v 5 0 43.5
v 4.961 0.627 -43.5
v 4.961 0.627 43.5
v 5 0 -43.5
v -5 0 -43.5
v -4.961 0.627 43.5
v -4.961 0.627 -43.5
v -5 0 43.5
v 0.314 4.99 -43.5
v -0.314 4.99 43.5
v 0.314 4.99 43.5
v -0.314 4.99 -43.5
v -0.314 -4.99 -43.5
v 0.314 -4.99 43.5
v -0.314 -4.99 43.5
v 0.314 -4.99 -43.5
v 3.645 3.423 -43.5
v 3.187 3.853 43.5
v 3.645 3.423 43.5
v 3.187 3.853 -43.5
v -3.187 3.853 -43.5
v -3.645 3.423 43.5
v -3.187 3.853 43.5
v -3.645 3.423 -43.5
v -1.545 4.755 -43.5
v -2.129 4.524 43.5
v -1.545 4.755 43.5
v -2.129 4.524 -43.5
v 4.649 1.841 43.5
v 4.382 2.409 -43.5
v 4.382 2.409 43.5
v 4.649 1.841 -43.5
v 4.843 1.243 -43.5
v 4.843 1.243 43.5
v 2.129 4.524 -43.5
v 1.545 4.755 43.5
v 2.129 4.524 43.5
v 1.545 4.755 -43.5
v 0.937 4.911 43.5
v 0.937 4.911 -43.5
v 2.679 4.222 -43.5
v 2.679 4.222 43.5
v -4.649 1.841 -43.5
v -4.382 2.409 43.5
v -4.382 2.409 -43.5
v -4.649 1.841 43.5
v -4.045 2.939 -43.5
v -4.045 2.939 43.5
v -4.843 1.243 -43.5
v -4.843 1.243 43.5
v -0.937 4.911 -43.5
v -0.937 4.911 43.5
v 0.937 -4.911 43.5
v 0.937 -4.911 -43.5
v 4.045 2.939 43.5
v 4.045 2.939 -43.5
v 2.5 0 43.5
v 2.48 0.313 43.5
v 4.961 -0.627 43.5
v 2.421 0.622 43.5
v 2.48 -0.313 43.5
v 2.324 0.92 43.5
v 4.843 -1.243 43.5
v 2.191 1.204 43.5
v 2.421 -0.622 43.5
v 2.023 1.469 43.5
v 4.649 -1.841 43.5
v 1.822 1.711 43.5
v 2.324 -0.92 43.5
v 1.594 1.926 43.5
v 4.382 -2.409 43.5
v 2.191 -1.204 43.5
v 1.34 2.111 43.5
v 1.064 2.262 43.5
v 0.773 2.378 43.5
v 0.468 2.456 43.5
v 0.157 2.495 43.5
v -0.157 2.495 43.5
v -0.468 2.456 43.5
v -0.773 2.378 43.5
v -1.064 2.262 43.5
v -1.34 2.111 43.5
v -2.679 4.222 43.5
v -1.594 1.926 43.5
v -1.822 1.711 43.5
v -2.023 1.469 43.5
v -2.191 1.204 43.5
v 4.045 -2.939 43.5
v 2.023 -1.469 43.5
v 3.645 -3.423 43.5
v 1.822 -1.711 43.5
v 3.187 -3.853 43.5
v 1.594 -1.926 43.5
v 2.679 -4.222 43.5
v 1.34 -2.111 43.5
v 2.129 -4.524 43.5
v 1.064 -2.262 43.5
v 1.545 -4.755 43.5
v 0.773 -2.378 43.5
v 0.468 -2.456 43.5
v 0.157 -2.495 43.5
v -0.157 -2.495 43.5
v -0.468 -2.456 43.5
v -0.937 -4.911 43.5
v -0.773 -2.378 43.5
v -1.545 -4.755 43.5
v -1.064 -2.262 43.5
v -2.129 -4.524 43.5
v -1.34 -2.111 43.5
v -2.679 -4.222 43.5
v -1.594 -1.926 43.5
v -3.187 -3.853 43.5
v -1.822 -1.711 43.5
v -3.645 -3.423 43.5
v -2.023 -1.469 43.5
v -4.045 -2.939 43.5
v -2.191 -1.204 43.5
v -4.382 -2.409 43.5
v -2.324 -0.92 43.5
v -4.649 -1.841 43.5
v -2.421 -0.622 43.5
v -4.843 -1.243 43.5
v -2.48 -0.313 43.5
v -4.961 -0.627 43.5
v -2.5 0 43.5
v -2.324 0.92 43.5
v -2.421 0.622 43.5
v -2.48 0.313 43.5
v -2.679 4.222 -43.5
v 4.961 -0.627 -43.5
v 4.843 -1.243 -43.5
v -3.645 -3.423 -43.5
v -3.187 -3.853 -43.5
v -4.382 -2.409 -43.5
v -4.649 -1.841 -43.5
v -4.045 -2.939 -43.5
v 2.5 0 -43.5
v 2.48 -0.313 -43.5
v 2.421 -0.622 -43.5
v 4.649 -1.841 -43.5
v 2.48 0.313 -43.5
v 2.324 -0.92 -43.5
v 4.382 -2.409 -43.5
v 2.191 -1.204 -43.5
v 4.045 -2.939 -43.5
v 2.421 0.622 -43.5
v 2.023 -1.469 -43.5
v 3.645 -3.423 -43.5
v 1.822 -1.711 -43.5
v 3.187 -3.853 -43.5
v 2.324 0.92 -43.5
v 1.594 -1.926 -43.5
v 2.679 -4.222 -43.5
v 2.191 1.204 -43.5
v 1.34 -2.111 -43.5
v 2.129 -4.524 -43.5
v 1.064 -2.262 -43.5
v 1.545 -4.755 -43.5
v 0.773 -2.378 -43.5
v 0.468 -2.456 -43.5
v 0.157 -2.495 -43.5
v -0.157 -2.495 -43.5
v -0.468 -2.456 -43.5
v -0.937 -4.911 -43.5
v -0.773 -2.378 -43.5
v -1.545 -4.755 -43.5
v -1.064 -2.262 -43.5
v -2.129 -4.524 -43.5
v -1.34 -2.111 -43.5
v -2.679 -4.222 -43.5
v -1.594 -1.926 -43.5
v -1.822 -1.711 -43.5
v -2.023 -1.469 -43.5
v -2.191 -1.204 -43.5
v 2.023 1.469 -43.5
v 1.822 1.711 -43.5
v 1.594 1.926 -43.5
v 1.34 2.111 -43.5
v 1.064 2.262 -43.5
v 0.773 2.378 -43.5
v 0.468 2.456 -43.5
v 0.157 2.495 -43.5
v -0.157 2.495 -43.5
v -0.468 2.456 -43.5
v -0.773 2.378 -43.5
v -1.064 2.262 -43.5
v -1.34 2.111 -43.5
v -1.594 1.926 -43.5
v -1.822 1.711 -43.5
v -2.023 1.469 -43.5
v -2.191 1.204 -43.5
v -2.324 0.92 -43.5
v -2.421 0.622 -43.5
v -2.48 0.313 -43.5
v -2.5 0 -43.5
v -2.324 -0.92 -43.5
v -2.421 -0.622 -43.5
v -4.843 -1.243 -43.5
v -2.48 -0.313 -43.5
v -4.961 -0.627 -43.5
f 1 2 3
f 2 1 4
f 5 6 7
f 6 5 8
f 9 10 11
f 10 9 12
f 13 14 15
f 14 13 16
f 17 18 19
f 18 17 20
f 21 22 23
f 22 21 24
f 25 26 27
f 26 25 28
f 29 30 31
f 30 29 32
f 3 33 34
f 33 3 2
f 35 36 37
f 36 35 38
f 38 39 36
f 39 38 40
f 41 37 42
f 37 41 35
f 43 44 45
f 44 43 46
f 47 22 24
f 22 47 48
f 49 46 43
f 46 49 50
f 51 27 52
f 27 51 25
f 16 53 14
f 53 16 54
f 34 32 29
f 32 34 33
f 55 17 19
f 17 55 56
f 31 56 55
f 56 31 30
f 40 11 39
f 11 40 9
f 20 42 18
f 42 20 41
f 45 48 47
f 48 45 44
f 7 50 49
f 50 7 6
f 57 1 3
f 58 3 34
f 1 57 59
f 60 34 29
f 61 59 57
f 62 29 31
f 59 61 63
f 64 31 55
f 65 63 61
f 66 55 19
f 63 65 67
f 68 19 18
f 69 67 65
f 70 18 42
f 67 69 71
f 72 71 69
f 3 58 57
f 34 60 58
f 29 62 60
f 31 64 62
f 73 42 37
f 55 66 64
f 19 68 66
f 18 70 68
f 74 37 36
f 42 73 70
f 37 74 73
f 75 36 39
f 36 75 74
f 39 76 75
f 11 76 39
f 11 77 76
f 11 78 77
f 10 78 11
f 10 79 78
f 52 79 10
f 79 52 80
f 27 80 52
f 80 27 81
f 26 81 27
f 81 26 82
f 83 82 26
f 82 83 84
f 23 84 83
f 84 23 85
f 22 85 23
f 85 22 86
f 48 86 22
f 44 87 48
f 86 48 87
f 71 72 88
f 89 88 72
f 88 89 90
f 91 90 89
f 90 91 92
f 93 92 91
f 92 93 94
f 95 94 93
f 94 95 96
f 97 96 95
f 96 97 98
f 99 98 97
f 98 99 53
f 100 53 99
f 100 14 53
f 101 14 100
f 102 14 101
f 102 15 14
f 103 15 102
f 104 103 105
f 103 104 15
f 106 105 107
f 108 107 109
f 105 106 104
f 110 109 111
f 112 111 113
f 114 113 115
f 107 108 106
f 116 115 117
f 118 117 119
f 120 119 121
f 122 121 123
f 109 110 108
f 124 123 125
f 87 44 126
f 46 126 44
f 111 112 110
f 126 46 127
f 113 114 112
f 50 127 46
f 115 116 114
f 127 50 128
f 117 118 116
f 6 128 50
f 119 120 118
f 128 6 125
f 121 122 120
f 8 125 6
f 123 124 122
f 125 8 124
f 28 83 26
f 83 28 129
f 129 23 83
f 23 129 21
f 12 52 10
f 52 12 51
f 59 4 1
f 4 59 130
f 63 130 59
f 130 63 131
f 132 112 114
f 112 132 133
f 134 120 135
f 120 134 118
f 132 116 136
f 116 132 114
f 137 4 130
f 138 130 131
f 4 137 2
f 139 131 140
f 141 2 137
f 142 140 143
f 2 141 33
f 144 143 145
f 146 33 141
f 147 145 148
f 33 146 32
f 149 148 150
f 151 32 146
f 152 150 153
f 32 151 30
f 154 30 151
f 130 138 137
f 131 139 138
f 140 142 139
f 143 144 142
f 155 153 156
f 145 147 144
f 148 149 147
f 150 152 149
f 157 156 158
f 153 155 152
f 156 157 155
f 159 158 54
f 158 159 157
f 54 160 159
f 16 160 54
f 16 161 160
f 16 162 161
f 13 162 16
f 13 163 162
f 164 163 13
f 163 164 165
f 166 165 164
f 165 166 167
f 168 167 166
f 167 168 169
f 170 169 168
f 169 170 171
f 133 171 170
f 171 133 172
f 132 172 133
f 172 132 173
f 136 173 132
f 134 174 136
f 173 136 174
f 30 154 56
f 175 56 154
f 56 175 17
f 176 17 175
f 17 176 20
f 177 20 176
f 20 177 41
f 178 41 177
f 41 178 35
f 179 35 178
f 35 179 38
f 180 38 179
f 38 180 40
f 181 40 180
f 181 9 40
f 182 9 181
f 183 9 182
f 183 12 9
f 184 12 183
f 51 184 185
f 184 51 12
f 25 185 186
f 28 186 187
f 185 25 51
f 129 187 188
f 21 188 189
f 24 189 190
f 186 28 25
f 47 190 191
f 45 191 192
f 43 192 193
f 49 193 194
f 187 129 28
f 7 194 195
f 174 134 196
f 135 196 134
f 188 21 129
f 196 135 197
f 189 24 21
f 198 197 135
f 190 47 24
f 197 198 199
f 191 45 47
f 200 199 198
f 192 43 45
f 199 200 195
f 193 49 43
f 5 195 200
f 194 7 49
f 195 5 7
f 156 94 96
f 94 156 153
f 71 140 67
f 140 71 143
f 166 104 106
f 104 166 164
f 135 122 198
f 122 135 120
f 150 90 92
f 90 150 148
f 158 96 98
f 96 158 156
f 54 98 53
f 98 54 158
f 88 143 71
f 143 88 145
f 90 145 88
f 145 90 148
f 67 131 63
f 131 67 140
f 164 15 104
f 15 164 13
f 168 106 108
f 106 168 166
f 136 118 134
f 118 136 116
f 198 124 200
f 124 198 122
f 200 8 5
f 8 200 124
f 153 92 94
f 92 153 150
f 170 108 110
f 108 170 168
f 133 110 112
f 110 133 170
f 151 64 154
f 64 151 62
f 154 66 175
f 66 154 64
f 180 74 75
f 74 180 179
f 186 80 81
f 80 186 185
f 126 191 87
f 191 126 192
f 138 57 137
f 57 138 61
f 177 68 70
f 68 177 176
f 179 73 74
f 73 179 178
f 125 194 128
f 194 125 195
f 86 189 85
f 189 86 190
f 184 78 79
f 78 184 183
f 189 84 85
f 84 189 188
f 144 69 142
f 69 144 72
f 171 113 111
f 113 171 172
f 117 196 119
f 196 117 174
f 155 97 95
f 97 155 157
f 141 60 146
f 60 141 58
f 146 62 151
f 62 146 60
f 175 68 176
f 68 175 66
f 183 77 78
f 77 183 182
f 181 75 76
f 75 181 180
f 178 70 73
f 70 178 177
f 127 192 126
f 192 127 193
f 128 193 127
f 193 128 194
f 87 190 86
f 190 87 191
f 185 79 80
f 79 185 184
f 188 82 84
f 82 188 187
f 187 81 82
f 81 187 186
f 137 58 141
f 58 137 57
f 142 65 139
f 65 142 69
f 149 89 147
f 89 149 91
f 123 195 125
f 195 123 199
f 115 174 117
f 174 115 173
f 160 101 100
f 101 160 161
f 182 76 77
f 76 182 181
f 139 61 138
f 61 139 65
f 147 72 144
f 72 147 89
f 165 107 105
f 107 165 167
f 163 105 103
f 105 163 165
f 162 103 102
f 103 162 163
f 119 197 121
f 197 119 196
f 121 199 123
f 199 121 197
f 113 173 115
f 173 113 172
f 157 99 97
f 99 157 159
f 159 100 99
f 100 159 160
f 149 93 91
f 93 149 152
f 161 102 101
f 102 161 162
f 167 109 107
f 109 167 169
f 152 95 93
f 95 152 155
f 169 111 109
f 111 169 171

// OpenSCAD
$fn = 50;


difference() {
	union() {
		translate(v = [0, 0, -43.5000000000]) {
			cylinder(h = 87, r = 5.0000000000);
		}
	}
	union() {
		translate(v = [0, 0, -100.0000000000]) {
			cylinder(h = 200, r = 2.5000000000);
		}
	}
}
